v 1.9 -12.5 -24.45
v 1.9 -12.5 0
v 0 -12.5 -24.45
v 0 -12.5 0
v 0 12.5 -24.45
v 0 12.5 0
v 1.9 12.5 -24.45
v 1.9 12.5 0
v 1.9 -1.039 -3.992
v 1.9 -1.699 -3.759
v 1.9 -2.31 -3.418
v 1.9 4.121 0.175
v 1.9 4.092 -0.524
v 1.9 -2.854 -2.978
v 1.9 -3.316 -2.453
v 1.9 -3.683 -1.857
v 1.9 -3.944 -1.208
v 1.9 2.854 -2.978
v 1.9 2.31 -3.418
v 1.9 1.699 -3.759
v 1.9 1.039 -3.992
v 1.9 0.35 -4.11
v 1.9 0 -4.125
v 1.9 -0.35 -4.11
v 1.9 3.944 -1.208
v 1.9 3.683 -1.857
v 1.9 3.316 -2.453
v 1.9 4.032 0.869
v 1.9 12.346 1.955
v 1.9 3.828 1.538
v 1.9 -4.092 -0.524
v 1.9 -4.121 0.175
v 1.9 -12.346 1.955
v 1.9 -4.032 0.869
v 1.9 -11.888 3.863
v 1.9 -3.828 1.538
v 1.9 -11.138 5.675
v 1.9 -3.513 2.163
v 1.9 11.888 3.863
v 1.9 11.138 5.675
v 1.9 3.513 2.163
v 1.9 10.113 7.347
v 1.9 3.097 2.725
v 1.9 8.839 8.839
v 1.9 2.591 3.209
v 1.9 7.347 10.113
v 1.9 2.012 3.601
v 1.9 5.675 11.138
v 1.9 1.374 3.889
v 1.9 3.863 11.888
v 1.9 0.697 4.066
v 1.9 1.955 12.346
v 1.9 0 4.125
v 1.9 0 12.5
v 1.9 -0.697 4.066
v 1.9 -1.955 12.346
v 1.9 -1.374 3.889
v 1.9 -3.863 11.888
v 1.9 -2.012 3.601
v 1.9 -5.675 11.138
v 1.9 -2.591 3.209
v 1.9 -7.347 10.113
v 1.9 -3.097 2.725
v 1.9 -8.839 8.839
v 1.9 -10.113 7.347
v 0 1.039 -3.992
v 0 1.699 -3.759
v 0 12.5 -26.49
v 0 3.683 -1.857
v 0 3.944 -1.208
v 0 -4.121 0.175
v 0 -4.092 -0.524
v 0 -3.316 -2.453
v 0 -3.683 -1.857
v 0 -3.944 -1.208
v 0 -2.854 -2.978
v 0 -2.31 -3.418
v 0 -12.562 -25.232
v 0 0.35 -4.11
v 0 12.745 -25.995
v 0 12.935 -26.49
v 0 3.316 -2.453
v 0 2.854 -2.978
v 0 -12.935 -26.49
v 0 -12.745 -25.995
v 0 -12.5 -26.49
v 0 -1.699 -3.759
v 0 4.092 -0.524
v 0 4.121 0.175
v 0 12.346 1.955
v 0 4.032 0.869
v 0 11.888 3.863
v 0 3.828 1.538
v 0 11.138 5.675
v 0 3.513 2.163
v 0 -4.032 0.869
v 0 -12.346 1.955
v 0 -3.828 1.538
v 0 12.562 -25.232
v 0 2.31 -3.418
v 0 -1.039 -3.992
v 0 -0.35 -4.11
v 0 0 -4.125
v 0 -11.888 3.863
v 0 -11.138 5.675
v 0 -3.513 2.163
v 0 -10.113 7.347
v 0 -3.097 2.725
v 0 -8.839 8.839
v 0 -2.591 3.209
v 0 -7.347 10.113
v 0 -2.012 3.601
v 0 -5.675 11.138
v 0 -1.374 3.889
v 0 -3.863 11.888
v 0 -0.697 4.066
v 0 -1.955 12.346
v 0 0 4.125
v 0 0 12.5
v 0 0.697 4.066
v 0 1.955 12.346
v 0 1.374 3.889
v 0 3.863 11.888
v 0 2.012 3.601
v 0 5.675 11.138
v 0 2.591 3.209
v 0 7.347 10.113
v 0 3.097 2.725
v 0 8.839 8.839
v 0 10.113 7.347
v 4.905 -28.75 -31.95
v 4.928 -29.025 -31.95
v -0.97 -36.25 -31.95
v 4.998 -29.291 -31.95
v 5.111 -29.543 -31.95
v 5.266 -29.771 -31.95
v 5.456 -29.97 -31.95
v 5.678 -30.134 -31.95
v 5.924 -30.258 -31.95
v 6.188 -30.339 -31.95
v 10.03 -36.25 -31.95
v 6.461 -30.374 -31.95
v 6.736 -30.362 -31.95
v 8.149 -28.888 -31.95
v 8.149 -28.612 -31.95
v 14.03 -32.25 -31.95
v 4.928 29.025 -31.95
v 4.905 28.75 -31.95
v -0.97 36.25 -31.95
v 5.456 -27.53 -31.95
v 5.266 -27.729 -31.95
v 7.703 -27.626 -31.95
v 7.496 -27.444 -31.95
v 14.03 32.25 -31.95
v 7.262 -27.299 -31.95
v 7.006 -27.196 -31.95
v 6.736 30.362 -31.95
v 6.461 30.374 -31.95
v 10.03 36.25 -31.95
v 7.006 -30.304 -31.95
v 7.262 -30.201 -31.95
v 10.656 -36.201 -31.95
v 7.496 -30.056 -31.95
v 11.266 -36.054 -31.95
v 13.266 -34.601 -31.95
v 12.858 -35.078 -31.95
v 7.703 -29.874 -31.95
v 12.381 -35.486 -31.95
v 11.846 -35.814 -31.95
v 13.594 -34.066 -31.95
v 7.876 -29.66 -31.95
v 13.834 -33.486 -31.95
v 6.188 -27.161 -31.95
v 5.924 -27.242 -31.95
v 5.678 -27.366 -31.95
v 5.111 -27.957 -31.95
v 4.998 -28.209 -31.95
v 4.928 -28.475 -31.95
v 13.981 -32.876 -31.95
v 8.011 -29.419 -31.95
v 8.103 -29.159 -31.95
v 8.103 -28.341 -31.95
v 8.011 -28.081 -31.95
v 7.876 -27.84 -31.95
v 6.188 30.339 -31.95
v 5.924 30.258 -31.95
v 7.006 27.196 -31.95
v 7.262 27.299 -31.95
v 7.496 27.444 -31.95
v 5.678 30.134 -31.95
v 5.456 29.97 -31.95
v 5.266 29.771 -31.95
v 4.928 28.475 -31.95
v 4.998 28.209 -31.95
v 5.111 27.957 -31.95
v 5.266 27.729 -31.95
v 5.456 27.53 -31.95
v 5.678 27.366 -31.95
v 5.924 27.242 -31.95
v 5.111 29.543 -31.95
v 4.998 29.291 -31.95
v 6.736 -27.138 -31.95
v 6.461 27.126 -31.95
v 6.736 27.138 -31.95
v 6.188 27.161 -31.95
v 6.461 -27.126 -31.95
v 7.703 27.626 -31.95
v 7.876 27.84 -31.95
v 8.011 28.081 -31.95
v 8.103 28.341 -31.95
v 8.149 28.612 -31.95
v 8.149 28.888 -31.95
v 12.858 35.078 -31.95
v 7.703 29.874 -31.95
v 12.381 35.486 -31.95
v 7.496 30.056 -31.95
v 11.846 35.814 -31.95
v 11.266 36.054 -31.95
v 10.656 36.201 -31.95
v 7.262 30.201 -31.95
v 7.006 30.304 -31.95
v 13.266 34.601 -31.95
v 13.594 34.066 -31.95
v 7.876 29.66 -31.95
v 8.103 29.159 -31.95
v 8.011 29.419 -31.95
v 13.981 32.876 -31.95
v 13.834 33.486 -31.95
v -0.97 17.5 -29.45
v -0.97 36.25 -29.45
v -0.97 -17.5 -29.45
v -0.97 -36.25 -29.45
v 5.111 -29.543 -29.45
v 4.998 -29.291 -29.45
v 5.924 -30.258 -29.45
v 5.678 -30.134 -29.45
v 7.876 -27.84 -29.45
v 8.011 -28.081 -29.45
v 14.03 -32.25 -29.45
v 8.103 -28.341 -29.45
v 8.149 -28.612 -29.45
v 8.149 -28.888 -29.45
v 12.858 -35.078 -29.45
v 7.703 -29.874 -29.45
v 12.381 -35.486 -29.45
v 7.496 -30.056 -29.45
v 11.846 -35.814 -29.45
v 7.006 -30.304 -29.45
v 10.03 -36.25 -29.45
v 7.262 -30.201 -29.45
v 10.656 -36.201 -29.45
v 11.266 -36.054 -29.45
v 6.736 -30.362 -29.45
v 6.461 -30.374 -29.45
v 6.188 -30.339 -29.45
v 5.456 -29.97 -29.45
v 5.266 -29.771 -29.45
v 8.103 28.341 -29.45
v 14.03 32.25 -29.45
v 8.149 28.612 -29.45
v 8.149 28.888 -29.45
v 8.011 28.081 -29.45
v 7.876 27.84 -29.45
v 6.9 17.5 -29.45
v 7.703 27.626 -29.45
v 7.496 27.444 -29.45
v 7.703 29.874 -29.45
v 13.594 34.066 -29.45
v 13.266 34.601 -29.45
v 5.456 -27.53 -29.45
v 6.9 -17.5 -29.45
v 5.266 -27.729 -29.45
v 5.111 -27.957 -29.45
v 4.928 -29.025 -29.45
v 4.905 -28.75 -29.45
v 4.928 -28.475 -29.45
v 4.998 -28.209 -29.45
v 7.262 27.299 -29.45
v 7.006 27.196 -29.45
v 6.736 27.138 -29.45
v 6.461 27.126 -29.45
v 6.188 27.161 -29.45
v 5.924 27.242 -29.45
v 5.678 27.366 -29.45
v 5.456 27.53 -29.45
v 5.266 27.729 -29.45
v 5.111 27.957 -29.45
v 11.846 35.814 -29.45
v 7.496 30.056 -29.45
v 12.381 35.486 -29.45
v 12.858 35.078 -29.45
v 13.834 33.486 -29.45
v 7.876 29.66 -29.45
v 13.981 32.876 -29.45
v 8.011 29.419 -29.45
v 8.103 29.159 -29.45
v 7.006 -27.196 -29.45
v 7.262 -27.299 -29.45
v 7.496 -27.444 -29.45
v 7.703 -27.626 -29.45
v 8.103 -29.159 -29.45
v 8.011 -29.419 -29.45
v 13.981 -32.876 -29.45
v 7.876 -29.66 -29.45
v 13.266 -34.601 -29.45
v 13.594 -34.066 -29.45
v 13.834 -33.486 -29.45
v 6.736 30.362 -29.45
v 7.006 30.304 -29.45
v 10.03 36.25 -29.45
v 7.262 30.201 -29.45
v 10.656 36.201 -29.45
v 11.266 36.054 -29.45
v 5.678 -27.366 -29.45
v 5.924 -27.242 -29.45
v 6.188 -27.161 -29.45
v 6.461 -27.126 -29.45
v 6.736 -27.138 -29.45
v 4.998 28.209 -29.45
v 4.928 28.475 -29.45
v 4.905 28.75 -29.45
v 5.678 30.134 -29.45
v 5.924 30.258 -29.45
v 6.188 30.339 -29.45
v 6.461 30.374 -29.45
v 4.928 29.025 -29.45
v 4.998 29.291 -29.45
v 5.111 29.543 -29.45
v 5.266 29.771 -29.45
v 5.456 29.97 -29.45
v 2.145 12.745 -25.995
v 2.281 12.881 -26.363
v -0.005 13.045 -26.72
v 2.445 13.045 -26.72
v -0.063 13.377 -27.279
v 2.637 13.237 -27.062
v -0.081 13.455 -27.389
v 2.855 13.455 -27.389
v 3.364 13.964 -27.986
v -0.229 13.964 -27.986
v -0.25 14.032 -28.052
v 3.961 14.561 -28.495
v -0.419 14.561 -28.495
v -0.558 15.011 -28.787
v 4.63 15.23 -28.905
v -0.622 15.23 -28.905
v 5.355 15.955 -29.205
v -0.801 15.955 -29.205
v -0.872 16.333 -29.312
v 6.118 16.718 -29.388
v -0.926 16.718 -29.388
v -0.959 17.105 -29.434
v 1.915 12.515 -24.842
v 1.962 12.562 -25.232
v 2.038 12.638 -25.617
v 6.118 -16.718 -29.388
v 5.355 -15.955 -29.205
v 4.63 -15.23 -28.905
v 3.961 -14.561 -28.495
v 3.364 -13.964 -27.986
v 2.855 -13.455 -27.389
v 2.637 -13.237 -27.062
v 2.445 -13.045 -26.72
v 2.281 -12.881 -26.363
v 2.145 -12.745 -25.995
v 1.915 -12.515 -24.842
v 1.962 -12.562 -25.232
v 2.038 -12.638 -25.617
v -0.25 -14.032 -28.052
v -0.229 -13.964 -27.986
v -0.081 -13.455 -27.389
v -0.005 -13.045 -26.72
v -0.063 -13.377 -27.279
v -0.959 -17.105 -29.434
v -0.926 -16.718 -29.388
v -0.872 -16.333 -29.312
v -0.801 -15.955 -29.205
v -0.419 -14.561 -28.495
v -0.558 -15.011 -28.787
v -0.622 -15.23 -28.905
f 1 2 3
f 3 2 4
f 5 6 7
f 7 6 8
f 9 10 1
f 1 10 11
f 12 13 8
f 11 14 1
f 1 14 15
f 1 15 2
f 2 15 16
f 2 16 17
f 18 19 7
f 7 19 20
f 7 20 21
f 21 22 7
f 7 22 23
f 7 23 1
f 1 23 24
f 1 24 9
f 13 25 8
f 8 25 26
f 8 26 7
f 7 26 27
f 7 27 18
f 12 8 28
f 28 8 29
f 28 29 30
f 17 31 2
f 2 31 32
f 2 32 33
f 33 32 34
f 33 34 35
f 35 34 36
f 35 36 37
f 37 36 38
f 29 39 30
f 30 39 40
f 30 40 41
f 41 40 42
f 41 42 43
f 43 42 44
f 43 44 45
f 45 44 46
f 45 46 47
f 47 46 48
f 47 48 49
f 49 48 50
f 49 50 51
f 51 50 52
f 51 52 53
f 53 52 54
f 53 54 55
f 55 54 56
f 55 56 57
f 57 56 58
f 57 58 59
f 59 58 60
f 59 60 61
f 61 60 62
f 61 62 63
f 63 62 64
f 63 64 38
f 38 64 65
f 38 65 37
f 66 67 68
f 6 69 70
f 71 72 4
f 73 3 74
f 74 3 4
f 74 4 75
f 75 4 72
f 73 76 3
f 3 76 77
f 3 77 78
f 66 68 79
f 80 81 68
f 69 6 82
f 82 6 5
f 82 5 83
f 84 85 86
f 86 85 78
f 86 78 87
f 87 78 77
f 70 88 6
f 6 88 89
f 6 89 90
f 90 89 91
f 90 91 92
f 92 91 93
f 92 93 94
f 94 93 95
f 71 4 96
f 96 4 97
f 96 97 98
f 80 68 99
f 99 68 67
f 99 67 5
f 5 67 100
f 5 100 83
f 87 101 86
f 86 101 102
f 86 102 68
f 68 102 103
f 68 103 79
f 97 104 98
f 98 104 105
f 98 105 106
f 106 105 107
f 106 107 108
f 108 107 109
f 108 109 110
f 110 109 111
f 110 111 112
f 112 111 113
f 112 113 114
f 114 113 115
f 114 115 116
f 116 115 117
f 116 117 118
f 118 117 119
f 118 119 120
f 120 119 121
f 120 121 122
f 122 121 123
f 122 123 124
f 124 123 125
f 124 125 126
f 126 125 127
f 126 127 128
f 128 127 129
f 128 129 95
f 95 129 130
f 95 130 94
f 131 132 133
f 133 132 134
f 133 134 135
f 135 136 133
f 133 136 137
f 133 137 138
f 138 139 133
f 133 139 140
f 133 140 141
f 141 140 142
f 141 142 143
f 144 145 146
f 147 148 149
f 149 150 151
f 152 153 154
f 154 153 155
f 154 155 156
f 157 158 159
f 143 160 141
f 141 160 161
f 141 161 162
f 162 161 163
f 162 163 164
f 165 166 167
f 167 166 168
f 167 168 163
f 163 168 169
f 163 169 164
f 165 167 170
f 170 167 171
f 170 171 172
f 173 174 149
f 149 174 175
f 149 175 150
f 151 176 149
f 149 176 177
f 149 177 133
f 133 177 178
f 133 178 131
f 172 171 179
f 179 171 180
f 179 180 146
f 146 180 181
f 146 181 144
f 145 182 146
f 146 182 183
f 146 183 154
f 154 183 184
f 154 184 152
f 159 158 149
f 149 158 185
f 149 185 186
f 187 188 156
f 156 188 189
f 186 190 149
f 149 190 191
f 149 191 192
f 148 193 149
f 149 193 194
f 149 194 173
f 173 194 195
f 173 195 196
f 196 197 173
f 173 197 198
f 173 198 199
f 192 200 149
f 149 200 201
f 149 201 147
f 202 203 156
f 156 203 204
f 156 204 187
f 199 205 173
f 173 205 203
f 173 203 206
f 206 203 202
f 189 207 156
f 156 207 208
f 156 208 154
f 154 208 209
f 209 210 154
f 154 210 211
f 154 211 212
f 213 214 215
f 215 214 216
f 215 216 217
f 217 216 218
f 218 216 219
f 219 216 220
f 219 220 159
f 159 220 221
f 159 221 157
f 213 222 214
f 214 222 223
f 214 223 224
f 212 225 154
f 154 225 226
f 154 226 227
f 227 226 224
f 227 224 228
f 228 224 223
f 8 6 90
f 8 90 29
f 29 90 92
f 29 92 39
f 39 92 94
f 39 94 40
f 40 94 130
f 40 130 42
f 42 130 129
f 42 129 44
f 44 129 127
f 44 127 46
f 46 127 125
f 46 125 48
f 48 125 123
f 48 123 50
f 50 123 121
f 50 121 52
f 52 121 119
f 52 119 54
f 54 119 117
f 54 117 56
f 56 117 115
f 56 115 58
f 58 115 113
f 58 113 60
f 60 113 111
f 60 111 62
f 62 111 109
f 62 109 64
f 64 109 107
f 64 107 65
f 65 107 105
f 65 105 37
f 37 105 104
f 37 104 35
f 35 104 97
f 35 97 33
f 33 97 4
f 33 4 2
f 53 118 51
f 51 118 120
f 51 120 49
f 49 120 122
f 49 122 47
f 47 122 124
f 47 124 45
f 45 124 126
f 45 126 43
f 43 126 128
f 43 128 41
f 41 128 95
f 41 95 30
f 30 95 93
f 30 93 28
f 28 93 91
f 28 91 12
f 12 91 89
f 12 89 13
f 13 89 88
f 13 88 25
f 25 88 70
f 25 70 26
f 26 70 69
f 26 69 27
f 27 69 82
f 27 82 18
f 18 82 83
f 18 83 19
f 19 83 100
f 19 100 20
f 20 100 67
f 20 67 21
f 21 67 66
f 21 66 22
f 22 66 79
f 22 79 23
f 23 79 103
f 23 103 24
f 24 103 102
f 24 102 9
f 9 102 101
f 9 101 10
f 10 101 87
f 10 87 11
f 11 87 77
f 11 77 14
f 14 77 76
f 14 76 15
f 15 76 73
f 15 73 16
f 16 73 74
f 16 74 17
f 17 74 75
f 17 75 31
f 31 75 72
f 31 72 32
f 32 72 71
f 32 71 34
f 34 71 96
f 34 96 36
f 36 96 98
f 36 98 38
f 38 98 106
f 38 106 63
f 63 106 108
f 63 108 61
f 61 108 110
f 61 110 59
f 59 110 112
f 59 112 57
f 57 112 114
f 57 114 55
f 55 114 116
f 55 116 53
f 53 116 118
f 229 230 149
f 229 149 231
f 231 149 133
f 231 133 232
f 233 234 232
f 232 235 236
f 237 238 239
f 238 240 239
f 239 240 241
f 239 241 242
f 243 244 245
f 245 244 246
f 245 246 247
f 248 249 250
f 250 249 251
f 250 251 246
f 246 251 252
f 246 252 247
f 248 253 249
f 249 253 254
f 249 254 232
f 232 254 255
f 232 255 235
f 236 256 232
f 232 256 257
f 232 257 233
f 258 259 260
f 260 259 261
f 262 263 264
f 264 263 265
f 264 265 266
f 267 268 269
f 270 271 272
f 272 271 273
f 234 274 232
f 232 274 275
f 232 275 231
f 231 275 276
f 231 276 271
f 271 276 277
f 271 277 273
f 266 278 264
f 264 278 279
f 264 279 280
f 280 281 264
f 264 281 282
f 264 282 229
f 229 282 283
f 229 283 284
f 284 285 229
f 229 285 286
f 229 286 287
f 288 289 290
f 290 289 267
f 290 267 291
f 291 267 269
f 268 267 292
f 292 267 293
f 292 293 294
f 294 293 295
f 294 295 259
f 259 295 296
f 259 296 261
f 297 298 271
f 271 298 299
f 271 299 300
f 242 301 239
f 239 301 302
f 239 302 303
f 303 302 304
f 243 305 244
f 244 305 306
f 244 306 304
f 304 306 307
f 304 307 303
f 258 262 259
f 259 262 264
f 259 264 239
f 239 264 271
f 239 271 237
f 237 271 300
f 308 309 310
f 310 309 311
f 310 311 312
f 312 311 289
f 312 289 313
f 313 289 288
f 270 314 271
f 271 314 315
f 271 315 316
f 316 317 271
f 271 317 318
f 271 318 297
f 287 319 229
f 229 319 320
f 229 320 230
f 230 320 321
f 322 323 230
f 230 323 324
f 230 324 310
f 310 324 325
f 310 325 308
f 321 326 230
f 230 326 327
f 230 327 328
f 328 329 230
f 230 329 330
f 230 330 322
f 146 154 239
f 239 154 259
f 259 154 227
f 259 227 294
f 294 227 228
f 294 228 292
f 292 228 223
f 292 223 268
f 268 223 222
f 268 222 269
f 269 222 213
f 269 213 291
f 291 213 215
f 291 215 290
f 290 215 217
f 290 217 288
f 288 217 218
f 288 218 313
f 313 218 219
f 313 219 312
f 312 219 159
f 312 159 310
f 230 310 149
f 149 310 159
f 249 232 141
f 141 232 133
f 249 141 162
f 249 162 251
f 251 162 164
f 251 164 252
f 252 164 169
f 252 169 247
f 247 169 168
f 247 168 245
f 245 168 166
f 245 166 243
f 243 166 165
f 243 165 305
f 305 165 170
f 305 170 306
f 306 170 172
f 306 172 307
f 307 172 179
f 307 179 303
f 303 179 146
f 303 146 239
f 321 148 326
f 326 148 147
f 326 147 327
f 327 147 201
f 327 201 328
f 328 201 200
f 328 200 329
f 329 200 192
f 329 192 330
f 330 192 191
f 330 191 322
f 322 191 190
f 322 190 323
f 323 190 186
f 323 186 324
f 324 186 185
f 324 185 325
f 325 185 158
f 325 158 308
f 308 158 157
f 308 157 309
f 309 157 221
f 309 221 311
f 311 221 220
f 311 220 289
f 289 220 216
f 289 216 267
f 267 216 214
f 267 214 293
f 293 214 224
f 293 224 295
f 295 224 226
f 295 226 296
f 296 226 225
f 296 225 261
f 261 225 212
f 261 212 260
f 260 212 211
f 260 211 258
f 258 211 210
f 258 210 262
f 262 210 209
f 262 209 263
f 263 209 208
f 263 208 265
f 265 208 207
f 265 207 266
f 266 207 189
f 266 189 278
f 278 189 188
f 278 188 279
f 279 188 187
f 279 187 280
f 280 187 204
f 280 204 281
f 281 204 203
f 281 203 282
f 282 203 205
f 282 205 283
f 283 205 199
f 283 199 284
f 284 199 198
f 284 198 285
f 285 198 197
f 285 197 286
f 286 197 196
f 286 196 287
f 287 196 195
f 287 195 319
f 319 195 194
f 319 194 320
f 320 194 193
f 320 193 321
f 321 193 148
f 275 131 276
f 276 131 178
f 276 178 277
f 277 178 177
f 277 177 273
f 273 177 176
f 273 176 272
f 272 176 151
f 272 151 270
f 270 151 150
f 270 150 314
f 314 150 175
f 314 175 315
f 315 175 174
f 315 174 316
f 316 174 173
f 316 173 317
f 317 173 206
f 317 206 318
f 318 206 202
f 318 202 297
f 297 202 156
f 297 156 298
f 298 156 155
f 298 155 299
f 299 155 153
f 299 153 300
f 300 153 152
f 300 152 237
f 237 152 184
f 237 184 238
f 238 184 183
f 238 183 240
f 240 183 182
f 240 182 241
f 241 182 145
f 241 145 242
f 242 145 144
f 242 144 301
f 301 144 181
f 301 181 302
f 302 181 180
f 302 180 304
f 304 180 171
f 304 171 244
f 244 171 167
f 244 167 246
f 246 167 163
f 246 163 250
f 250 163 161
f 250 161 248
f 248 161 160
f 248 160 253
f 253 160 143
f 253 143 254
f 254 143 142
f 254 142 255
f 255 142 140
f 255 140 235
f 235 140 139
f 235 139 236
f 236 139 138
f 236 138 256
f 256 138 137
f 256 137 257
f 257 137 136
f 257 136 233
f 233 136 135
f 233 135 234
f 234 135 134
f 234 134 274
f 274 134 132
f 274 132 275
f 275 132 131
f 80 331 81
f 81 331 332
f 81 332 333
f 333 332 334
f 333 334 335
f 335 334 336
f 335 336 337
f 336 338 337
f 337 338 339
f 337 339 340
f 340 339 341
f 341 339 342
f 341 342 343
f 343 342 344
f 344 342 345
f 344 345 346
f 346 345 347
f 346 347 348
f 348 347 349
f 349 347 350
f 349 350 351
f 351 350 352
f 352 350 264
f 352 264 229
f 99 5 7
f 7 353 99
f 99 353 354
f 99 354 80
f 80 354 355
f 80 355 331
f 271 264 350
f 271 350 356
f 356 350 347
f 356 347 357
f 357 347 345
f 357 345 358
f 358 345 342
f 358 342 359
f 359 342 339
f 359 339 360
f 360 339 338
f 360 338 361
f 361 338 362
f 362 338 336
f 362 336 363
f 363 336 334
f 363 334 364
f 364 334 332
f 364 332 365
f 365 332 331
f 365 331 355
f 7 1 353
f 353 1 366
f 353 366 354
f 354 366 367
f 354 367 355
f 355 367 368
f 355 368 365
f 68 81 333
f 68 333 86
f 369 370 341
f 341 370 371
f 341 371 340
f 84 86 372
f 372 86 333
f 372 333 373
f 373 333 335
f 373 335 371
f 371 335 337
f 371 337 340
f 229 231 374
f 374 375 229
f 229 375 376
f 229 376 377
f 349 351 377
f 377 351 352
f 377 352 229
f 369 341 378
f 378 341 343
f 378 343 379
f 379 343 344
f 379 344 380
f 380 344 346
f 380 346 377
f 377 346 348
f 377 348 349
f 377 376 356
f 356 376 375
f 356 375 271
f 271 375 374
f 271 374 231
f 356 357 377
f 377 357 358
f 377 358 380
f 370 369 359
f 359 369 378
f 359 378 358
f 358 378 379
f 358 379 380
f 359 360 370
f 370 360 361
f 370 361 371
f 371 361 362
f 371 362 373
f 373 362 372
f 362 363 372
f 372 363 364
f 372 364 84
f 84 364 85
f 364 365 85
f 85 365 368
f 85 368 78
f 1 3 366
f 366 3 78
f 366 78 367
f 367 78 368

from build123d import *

# Parameters (mm, degrees)
SKETCH1_R               = 4.125
BOSS_EXTRUDE1_DEPTH     = 1.9
BOSS_EXTRUDE4_DEPTH     = 2.5
CUT_EXTRUDE2_REACH      = 80.314
SKETCH7_W               = 7
SKETCH7_H               = 16.5
SKETCH7_W_2             = 16
SKETCH7_H_2             = 8
CUT_EXTRUDE3_REACH      = 82.041
SKETCH9_W               = 1.9
SKETCH9_H               = 22.388822383
SKETCH8_W               = 1.9
SKETCH8_H               = 27.825
BOSS_EXTRUDE5_DEPTH     = 12.5
FILLET2_R               = 1
FILLET3_R               = 4
CUT_EXTRUDE4_DEPTH      = 74.103052287
CUT_EXTRUDE4_DEPTH_BACK = 74.103052287
SKETCH10_W              = 78.235731334
SKETCH10_H              = 6.290045588
SKETCH11_W              = 15
SKETCH11_H              = 2.5
BOSS_EXTRUDE6_DEPTH     = 12.5
BOSS_EXTRUDE7_DEPTH     = 2.5
SKETCH14_R              = 1.625
CUT_EXTRUDE5_DEPTH      = 2.5
FILLET4_R               = 5


with BuildPart() as part:
    # Sketch1 → Boss-Extrude1 (new body)
    with BuildSketch(Plane(origin=(0, 0, 0), x_dir=(0, 0, -1), z_dir=(1, 0, 0))):
        with BuildLine():
            Line((0, 12.5), (34.45, 12.5))
            Line((34.45, 12.5), (34.45, -12.5))
            Line((34.45, -12.5), (0, -12.5))
            ThreePointArc((0, -12.5), (-12.5, 0), (0, 12.5))
        make_face()
        with Locations(Location((0, 0, 0), (0, 0, 180))):
            Circle(SKETCH1_R, mode=Mode.SUBTRACT)
    extrude(amount=BOSS_EXTRUDE1_DEPTH)

    # Sketch6 → Boss-Extrude4 (add)
    with BuildSketch(Plane(origin=(0, 0, -34.45), x_dir=(-1, 0, 0), z_dir=(0, 0, -1))):
        Polygon((-8.812505246, 36.25), (53.321583376, 36.25), (53.321583376, -36.25), (6.25, -36.25), (-19.178416624, -36.25), (-19.178416624, 36.25), align=None)
    extrude(amount=-BOSS_EXTRUDE4_DEPTH)

    # Sketch7 → Cut-Extrude2 (cut, up to next)
    with BuildSketch(Plane.XY.offset(-31.95), mode=Mode.PRIVATE) as cut_extrude2_sk1:
        with Locations((-1.711858899, -11.632438111)):
            Rectangle(SKETCH7_W, SKETCH7_H)
    cut_extrude2_tool1 = extrude(cut_extrude2_sk1.sketch, amount=-CUT_EXTRUDE2_REACH, mode=Mode.PRIVATE) & part.part
    # Sketch7 → Cut-Extrude2 (cut, up to next)
    with BuildSketch(Plane.XY.offset(-31.95), mode=Mode.PRIVATE) as cut_extrude2_sk2:
        with Locations((-16.5, 0)):
            Rectangle(SKETCH7_W_2, SKETCH7_H_2)
    cut_extrude2_tool2 = extrude(cut_extrude2_sk2.sketch, amount=-CUT_EXTRUDE2_REACH, mode=Mode.PRIVATE) & part.part
    add(cut_extrude2_tool1.solids().sort_by_distance((-1.711859, -11.632438, -31.95))[0], mode=Mode.SUBTRACT)
    add(cut_extrude2_tool2.solids().sort_by_distance((-16.5, 0, -31.95))[0], mode=Mode.SUBTRACT)

    # Sketch9 → Cut-Extrude3 (cut, up to next)
    with BuildSketch(Plane.XZ.offset(12.5), mode=Mode.PRIVATE) as cut_extrude3_sk1:
        with Locations((0.95, -20.755588809)):
            Rectangle(SKETCH9_W, SKETCH9_H)
    cut_extrude3_tool1 = extrude(cut_extrude3_sk1.sketch, amount=-CUT_EXTRUDE3_REACH, mode=Mode.PRIVATE) & part.part
    add(cut_extrude3_tool1.solids().sort_by_distance((0.95, -12.5, -20.755589))[0], mode=Mode.SUBTRACT)


with BuildPart() as cut_extrude3_piece_1:
    # of the separate pieces the step leaves, piece 1, a body of its own (cut_extrude3_pieces)
    add(part.part.solids().sort_by_distance((-53.321583376, 36.25, -31.95))[0])



with BuildPart() as cut_extrude3_piece_2:
    # of the separate pieces the step leaves, piece 2, a body of its own (cut_extrude3_pieces)
    add(part.part.solids().sort_by_distance((0, 12.5, 0))[0])


with BuildPart() as cut_extrude3_piece_1_1:
    add(cut_extrude3_piece_1.part)

    add(cut_extrude3_piece_2.part)  # Boss-Extrude5 merges Cut-Extrude3 piece 2
    # Sketch8 → Boss-Extrude5 (add, symmetric)
    with BuildSketch(Plane(origin=(0, 0, 0), x_dir=(1, 0, 0), z_dir=(0, 1, 0))):
        with Locations((0.95, 18.0375)):
            Rectangle(SKETCH8_W, SKETCH8_H)
    extrude(amount=BOSS_EXTRUDE5_DEPTH, both=True)

    # Fillet2
    fillet2_edges = [cut_extrude3_piece_1_1.edges().sort_by_distance(p)[0] for p in [
        (-8.5, 4, -33.2),
        (-8.5, -4, -33.2),
        (-24.5, -4, -33.2),
        (-24.5, 4, -33.2),
        (-5.211858899, -19.882438111, -33.2),
        (-5.211858899, -3.382438111, -33.2),
        (1.788141101, -3.382438111, -33.2),
        (1.788141101, -19.882438111, -33.2),
    ]]
    fillet(fillet2_edges, radius=FILLET2_R)

    # Fillet3
    fillet3_edges = [cut_extrude3_piece_1_1.edges().sort_by_distance(p)[0] for p in [
        (19.178416624, 36.25, -33.2),
        (-53.321583376, 36.25, -33.2),
        (-53.321583376, -36.25, -33.2),
        (19.178416624, -36.25, -33.2),
    ]]
    fillet(fillet3_edges, radius=FILLET3_R)

    # Sketch10 → Cut-Extrude4 (cut, two sides: drawn at the far end of the back side and taken through both)
    with BuildSketch(Plane(origin=(0, 0, 0), x_dir=(1, 0, 0), z_dir=(0, 1, 0)).offset(-CUT_EXTRUDE4_DEPTH_BACK)):
        with Locations((-17.391929865, 35.095022794)):
            Rectangle(SKETCH10_W, SKETCH10_H)
    extrude(amount=CUT_EXTRUDE4_DEPTH + CUT_EXTRUDE4_DEPTH_BACK, mode=Mode.SUBTRACT)

    # Sketch11 → Boss-Extrude6 (add, symmetric)
    with BuildSketch(Plane(origin=(0, 0, 0), x_dir=(1, 0, 0), z_dir=(0, 1, 0))):
        with Locations((6.53, 30.7)):
            Rectangle(SKETCH11_W, SKETCH11_H)
    boss_extrude6 = extrude(amount=BOSS_EXTRUDE6_DEPTH, both=True)

    # Sketch13 → Boss-Extrude7 (add)
    with BuildSketch(Plane(origin=(0, 0, -31.95), x_dir=(-1, 0, 0), z_dir=(0, 0, -1))):
        with BuildLine():
            Line((-14.03, 12.5), (0.97, 12.5))
            Line((0.97, 12.5), (0.97, 36.25))
            Line((0.97, 36.25), (-10.03, 36.25))
            ThreePointArc((-10.03, 36.25), (-12.858427125, 35.078427125), (-14.03, 32.25))
            Line((-14.03, 32.25), (-14.03, 12.5))
        make_face()
    boss_extrude7 = extrude(amount=-BOSS_EXTRUDE7_DEPTH)

    # Mirror1: Boss-Extrude6, Boss-Extrude7 across plane
    add(boss_extrude6.mirror(Plane.ZX))
    add(boss_extrude7.mirror(Plane.ZX))

    # Sketch14 → Cut-Extrude5 (cut)
    with BuildSketch(Plane(origin=(0, 0, -31.95), x_dir=(-1, 0, 0), z_dir=(0, 0, -1))):
        with Locations((-6.53, 28.75)):
            Circle(SKETCH14_R)
    cut_extrude5 = extrude(amount=-CUT_EXTRUDE5_DEPTH, mode=Mode.SUBTRACT)

    # Mirror2: Cut-Extrude5 across plane
    add(cut_extrude5.mirror(Plane.ZX), mode=Mode.SUBTRACT)

    # Fillet4
    # the kernel refuses this fillet: 5 mm, written as the material it adds along each edge
    with BuildSketch(Plane(origin=(1.9, -12.5, -29.45), x_dir=(1, 0, 0), z_dir=(0, 1, 0))) as fillet4_piece_1:
        with BuildLine():
            CenterArc((FILLET4_R, -FILLET4_R), FILLET4_R, 90, 90)
            Line((0, -FILLET4_R), (-FILLET4_R * 0.02, -FILLET4_R))
            Line((-FILLET4_R * 0.02, -FILLET4_R), (-FILLET4_R * 0.02, FILLET4_R * 0.02))
            Line((-FILLET4_R * 0.02, FILLET4_R * 0.02), (FILLET4_R, FILLET4_R * 0.02))
            Line((FILLET4_R, FILLET4_R * 0.02), (FILLET4_R, 0))
        make_face()
    extrude(amount=25)
    with BuildSketch(Plane(origin=(0, -12.5, -29.45), x_dir=(-1, 0, 0), z_dir=(0, 1, 0))) as fillet4_piece_2:
        with BuildLine():
            CenterArc((5, 2.959577673), FILLET4_R, 180, 36.293058493)
            Line((0, 2.959577673), (-0.1, 2.959577673))
            Line((-0.1, 2.959577673), (-0.1, 0))
            Line((-0.1, 0), (0, -0.1))
            ThreePointArc((0, -0.1), (0.485, -0.1), (0.8894, -0.059191553))
            Line((0.8894, -0.059191553), (0.97, 0))
        make_face()
    extrude(amount=25)
    with BuildSketch(Plane(origin=(1.9, 12.5, -29.45), x_dir=(0, 0, 1), z_dir=(-1, 0, 0)), Plane(origin=(1.9, -12.5, -29.45), x_dir=(0, -1, 0), z_dir=(-1, 0, 0))) as fillet4_piece_3:
        with BuildLine():
            CenterArc((FILLET4_R, FILLET4_R), FILLET4_R, 180, 90)
            Line((0, FILLET4_R), (-FILLET4_R * 0.02, FILLET4_R))
            Line((-FILLET4_R * 0.02, FILLET4_R), (-FILLET4_R * 0.02, -FILLET4_R * 0.02))
            Line((-FILLET4_R * 0.02, -FILLET4_R * 0.02), (FILLET4_R, -FILLET4_R * 0.02))
            Line((FILLET4_R, -FILLET4_R * 0.02), (FILLET4_R, 0))
        make_face()
    extrude(amount=1.9)
    with BuildSketch(Plane(origin=(1.9, -25, -29.45), x_dir=(1, 0, 0), z_dir=(0, 1, 0))) as fillet4_piece_4a_section:
        with BuildLine():
            CenterArc((FILLET4_R, -FILLET4_R), FILLET4_R, 90, 90)
            Line((0, -FILLET4_R), (-FILLET4_R * 0.02, -FILLET4_R))
            Line((-FILLET4_R * 0.02, -FILLET4_R), (-FILLET4_R * 0.02, FILLET4_R * 0.02))
            Line((-FILLET4_R * 0.02, FILLET4_R * 0.02), (FILLET4_R, FILLET4_R * 0.02))
            Line((FILLET4_R, FILLET4_R * 0.02), (FILLET4_R, 0))
        make_face()
    fillet4_piece_4a = extrude(amount=37.5, mode=Mode.PRIVATE)
    fillet4_piece_4a = split(fillet4_piece_4a, bisect_by=Plane(origin=(3.031975571, -12.5, -28.318024429), z_dir=(0, -1, 0)), keep=Keep.TOP, mode=Mode.PRIVATE)
    with BuildSketch(Plane(origin=(14.4, -12.5, -29.45), x_dir=(0, -1, 0), z_dir=(-1, 0, 0))) as fillet4_piece_4b_section:
        with BuildLine():
            CenterArc((FILLET4_R, FILLET4_R), FILLET4_R, 180, 90)
            Line((0, FILLET4_R), (-FILLET4_R * 0.02, FILLET4_R))
            Line((-FILLET4_R * 0.02, FILLET4_R), (-FILLET4_R * 0.02, -FILLET4_R * 0.02))
            Line((-FILLET4_R * 0.02, -FILLET4_R * 0.02), (FILLET4_R, -FILLET4_R * 0.02))
            Line((FILLET4_R, -FILLET4_R * 0.02), (FILLET4_R, 0))
        make_face()
    fillet4_piece_4b = extrude(amount=14.4, mode=Mode.PRIVATE)
    fillet4_piece_4b = split(fillet4_piece_4b, bisect_by=Plane(origin=(14.03, -13.631975571, -28.318024429), z_dir=(-1, 0, 0)), keep=Keep.TOP, mode=Mode.PRIVATE)
    fillet4_piece_4b = split(fillet4_piece_4b, bisect_by=Plane(origin=(1.9, -13.631975571, -28.318024429), z_dir=(1, 0, 0)), keep=Keep.TOP, mode=Mode.PRIVATE)
    fillet4_piece_4 = fillet4_piece_4a & fillet4_piece_4b
    add(fillet4_piece_4)
    with BuildSketch(Plane(origin=(14.4, 12.5, -29.45), x_dir=(0, 0, 1), z_dir=(-1, 0, 0))) as fillet4_piece_5a_section:
        with BuildLine():
            CenterArc((FILLET4_R, FILLET4_R), FILLET4_R, 180, 90)
            Line((0, FILLET4_R), (-FILLET4_R * 0.02, FILLET4_R))
            Line((-FILLET4_R * 0.02, FILLET4_R), (-FILLET4_R * 0.02, -FILLET4_R * 0.02))
            Line((-FILLET4_R * 0.02, -FILLET4_R * 0.02), (FILLET4_R, -FILLET4_R * 0.02))
            Line((FILLET4_R, -FILLET4_R * 0.02), (FILLET4_R, 0))
        make_face()
    fillet4_piece_5a = extrude(amount=14.4, mode=Mode.PRIVATE)
    fillet4_piece_5a = split(fillet4_piece_5a, bisect_by=Plane(origin=(1.9, 13.631975571, -28.318024429), z_dir=(1, 0, 0)), keep=Keep.TOP, mode=Mode.PRIVATE)
    fillet4_piece_5a = split(fillet4_piece_5a, bisect_by=Plane(origin=(14.03, 13.631975571, -28.318024429), z_dir=(-1, 0, 0)), keep=Keep.TOP, mode=Mode.PRIVATE)
    with BuildSketch(Plane(origin=(1.9, -12.5, -29.45), x_dir=(1, 0, 0), z_dir=(0, 1, 0))) as fillet4_piece_5b_section:
        with BuildLine():
            CenterArc((FILLET4_R, -FILLET4_R), FILLET4_R, 90, 90)
            Line((0, -FILLET4_R), (-FILLET4_R * 0.02, -FILLET4_R))
            Line((-FILLET4_R * 0.02, -FILLET4_R), (-FILLET4_R * 0.02, FILLET4_R * 0.02))
            Line((-FILLET4_R * 0.02, FILLET4_R * 0.02), (FILLET4_R, FILLET4_R * 0.02))
            Line((FILLET4_R, FILLET4_R * 0.02), (FILLET4_R, 0))
        make_face()
    fillet4_piece_5b = extrude(amount=37.5, mode=Mode.PRIVATE)
    fillet4_piece_5b = split(fillet4_piece_5b, bisect_by=Plane(origin=(3.031975571, 12.5, -28.318024429), z_dir=(0, 1, 0)), keep=Keep.TOP, mode=Mode.PRIVATE)
    fillet4_piece_5 = fillet4_piece_5a & fillet4_piece_5b
    add(fillet4_piece_5)
    with BuildSketch(Plane(origin=(1.9, -12.5, -29.45), x_dir=(0, -1, 0), z_dir=(-1, 0, 0))) as fillet4_piece_6a_section:
        with BuildLine():
            CenterArc((FILLET4_R, FILLET4_R), FILLET4_R, 180, 90)
            Line((0, FILLET4_R), (-FILLET4_R * 0.02, FILLET4_R))
            Line((-FILLET4_R * 0.02, FILLET4_R), (-FILLET4_R * 0.02, -FILLET4_R * 0.02))
            Line((-FILLET4_R * 0.02, -FILLET4_R * 0.02), (FILLET4_R, -FILLET4_R * 0.02))
            Line((FILLET4_R, -FILLET4_R * 0.02), (FILLET4_R, 0))
        make_face()
    fillet4_piece_6a = extrude(amount=14.4, mode=Mode.PRIVATE)
    fillet4_piece_6a = split(fillet4_piece_6a, bisect_by=Plane(origin=(-0.97, -13.631975571, -28.318024429), z_dir=(1, 0, 0)), keep=Keep.TOP, mode=Mode.PRIVATE)
    fillet4_piece_6a = split(fillet4_piece_6a, bisect_by=Plane(origin=(0, -13.631975571, -28.318024429), z_dir=(-1, 0, 0)), keep=Keep.TOP, mode=Mode.PRIVATE)
    with BuildSketch(Plane(origin=(0, -19.898944181, -29.45), x_dir=(-1, 0, 0), z_dir=(0, 1, 0))) as fillet4_piece_6b_section:
        with BuildLine():
            CenterArc((5, 2.959577673), FILLET4_R, 180, 36.293058493)
            Line((0, 2.959577673), (-0.1, 2.959577673))
            Line((-0.1, 2.959577673), (-0.1, 0))
            Line((-0.1, 0), (0, -0.1))
            ThreePointArc((0, -0.1), (0.485, -0.1), (0.8894, -0.059191553))
            Line((0.8894, -0.059191553), (0.97, 0))
        make_face()
    fillet4_piece_6b = extrude(amount=32.398944181, mode=Mode.PRIVATE)
    fillet4_piece_6b = split(fillet4_piece_6b, bisect_by=Plane(origin=(-0.217435867, -12.5, -28.607978011), z_dir=(0, -1, 0)), keep=Keep.TOP, mode=Mode.PRIVATE)
    fillet4_piece_6 = fillet4_piece_6a & fillet4_piece_6b
    add(fillet4_piece_6)
    with BuildSketch(Plane(origin=(1.9, 12.5, -29.45), x_dir=(0, 0, 1), z_dir=(-1, 0, 0))) as fillet4_piece_7a_section:
        with BuildLine():
            CenterArc((FILLET4_R, FILLET4_R), FILLET4_R, 180, 90)
            Line((0, FILLET4_R), (-FILLET4_R * 0.02, FILLET4_R))
            Line((-FILLET4_R * 0.02, FILLET4_R), (-FILLET4_R * 0.02, -FILLET4_R * 0.02))
            Line((-FILLET4_R * 0.02, -FILLET4_R * 0.02), (FILLET4_R, -FILLET4_R * 0.02))
            Line((FILLET4_R, -FILLET4_R * 0.02), (FILLET4_R, 0))
        make_face()
    fillet4_piece_7a = extrude(amount=14.4, mode=Mode.PRIVATE)
    fillet4_piece_7a = split(fillet4_piece_7a, bisect_by=Plane(origin=(0, 13.631975571, -28.318024429), z_dir=(-1, 0, 0)), keep=Keep.TOP, mode=Mode.PRIVATE)
    fillet4_piece_7a = split(fillet4_piece_7a, bisect_by=Plane(origin=(-0.97, 13.631975571, -28.318024429), z_dir=(1, 0, 0)), keep=Keep.TOP, mode=Mode.PRIVATE)
    with BuildSketch(Plane(origin=(0, -12.5, -29.45), x_dir=(-1, 0, 0), z_dir=(0, 1, 0))) as fillet4_piece_7b_section:
        with BuildLine():
            CenterArc((5, 2.959577673), FILLET4_R, 180, 36.293058493)
            Line((0, 2.959577673), (-0.1, 2.959577673))
            Line((-0.1, 2.959577673), (-0.1, 0))
            Line((-0.1, 0), (0, -0.1))
            ThreePointArc((0, -0.1), (0.485, -0.1), (0.8894, -0.059191553))
            Line((0.8894, -0.059191553), (0.97, 0))
        make_face()
    fillet4_piece_7b = extrude(amount=32.398944181, mode=Mode.PRIVATE)
    fillet4_piece_7b = split(fillet4_piece_7b, bisect_by=Plane(origin=(-0.217435867, 12.5, -28.607978011), z_dir=(0, 1, 0)), keep=Keep.TOP, mode=Mode.PRIVATE)
    fillet4_piece_7 = fillet4_piece_7a & fillet4_piece_7b
    add(fillet4_piece_7)


solid = cut_extrude3_piece_1_1.part
